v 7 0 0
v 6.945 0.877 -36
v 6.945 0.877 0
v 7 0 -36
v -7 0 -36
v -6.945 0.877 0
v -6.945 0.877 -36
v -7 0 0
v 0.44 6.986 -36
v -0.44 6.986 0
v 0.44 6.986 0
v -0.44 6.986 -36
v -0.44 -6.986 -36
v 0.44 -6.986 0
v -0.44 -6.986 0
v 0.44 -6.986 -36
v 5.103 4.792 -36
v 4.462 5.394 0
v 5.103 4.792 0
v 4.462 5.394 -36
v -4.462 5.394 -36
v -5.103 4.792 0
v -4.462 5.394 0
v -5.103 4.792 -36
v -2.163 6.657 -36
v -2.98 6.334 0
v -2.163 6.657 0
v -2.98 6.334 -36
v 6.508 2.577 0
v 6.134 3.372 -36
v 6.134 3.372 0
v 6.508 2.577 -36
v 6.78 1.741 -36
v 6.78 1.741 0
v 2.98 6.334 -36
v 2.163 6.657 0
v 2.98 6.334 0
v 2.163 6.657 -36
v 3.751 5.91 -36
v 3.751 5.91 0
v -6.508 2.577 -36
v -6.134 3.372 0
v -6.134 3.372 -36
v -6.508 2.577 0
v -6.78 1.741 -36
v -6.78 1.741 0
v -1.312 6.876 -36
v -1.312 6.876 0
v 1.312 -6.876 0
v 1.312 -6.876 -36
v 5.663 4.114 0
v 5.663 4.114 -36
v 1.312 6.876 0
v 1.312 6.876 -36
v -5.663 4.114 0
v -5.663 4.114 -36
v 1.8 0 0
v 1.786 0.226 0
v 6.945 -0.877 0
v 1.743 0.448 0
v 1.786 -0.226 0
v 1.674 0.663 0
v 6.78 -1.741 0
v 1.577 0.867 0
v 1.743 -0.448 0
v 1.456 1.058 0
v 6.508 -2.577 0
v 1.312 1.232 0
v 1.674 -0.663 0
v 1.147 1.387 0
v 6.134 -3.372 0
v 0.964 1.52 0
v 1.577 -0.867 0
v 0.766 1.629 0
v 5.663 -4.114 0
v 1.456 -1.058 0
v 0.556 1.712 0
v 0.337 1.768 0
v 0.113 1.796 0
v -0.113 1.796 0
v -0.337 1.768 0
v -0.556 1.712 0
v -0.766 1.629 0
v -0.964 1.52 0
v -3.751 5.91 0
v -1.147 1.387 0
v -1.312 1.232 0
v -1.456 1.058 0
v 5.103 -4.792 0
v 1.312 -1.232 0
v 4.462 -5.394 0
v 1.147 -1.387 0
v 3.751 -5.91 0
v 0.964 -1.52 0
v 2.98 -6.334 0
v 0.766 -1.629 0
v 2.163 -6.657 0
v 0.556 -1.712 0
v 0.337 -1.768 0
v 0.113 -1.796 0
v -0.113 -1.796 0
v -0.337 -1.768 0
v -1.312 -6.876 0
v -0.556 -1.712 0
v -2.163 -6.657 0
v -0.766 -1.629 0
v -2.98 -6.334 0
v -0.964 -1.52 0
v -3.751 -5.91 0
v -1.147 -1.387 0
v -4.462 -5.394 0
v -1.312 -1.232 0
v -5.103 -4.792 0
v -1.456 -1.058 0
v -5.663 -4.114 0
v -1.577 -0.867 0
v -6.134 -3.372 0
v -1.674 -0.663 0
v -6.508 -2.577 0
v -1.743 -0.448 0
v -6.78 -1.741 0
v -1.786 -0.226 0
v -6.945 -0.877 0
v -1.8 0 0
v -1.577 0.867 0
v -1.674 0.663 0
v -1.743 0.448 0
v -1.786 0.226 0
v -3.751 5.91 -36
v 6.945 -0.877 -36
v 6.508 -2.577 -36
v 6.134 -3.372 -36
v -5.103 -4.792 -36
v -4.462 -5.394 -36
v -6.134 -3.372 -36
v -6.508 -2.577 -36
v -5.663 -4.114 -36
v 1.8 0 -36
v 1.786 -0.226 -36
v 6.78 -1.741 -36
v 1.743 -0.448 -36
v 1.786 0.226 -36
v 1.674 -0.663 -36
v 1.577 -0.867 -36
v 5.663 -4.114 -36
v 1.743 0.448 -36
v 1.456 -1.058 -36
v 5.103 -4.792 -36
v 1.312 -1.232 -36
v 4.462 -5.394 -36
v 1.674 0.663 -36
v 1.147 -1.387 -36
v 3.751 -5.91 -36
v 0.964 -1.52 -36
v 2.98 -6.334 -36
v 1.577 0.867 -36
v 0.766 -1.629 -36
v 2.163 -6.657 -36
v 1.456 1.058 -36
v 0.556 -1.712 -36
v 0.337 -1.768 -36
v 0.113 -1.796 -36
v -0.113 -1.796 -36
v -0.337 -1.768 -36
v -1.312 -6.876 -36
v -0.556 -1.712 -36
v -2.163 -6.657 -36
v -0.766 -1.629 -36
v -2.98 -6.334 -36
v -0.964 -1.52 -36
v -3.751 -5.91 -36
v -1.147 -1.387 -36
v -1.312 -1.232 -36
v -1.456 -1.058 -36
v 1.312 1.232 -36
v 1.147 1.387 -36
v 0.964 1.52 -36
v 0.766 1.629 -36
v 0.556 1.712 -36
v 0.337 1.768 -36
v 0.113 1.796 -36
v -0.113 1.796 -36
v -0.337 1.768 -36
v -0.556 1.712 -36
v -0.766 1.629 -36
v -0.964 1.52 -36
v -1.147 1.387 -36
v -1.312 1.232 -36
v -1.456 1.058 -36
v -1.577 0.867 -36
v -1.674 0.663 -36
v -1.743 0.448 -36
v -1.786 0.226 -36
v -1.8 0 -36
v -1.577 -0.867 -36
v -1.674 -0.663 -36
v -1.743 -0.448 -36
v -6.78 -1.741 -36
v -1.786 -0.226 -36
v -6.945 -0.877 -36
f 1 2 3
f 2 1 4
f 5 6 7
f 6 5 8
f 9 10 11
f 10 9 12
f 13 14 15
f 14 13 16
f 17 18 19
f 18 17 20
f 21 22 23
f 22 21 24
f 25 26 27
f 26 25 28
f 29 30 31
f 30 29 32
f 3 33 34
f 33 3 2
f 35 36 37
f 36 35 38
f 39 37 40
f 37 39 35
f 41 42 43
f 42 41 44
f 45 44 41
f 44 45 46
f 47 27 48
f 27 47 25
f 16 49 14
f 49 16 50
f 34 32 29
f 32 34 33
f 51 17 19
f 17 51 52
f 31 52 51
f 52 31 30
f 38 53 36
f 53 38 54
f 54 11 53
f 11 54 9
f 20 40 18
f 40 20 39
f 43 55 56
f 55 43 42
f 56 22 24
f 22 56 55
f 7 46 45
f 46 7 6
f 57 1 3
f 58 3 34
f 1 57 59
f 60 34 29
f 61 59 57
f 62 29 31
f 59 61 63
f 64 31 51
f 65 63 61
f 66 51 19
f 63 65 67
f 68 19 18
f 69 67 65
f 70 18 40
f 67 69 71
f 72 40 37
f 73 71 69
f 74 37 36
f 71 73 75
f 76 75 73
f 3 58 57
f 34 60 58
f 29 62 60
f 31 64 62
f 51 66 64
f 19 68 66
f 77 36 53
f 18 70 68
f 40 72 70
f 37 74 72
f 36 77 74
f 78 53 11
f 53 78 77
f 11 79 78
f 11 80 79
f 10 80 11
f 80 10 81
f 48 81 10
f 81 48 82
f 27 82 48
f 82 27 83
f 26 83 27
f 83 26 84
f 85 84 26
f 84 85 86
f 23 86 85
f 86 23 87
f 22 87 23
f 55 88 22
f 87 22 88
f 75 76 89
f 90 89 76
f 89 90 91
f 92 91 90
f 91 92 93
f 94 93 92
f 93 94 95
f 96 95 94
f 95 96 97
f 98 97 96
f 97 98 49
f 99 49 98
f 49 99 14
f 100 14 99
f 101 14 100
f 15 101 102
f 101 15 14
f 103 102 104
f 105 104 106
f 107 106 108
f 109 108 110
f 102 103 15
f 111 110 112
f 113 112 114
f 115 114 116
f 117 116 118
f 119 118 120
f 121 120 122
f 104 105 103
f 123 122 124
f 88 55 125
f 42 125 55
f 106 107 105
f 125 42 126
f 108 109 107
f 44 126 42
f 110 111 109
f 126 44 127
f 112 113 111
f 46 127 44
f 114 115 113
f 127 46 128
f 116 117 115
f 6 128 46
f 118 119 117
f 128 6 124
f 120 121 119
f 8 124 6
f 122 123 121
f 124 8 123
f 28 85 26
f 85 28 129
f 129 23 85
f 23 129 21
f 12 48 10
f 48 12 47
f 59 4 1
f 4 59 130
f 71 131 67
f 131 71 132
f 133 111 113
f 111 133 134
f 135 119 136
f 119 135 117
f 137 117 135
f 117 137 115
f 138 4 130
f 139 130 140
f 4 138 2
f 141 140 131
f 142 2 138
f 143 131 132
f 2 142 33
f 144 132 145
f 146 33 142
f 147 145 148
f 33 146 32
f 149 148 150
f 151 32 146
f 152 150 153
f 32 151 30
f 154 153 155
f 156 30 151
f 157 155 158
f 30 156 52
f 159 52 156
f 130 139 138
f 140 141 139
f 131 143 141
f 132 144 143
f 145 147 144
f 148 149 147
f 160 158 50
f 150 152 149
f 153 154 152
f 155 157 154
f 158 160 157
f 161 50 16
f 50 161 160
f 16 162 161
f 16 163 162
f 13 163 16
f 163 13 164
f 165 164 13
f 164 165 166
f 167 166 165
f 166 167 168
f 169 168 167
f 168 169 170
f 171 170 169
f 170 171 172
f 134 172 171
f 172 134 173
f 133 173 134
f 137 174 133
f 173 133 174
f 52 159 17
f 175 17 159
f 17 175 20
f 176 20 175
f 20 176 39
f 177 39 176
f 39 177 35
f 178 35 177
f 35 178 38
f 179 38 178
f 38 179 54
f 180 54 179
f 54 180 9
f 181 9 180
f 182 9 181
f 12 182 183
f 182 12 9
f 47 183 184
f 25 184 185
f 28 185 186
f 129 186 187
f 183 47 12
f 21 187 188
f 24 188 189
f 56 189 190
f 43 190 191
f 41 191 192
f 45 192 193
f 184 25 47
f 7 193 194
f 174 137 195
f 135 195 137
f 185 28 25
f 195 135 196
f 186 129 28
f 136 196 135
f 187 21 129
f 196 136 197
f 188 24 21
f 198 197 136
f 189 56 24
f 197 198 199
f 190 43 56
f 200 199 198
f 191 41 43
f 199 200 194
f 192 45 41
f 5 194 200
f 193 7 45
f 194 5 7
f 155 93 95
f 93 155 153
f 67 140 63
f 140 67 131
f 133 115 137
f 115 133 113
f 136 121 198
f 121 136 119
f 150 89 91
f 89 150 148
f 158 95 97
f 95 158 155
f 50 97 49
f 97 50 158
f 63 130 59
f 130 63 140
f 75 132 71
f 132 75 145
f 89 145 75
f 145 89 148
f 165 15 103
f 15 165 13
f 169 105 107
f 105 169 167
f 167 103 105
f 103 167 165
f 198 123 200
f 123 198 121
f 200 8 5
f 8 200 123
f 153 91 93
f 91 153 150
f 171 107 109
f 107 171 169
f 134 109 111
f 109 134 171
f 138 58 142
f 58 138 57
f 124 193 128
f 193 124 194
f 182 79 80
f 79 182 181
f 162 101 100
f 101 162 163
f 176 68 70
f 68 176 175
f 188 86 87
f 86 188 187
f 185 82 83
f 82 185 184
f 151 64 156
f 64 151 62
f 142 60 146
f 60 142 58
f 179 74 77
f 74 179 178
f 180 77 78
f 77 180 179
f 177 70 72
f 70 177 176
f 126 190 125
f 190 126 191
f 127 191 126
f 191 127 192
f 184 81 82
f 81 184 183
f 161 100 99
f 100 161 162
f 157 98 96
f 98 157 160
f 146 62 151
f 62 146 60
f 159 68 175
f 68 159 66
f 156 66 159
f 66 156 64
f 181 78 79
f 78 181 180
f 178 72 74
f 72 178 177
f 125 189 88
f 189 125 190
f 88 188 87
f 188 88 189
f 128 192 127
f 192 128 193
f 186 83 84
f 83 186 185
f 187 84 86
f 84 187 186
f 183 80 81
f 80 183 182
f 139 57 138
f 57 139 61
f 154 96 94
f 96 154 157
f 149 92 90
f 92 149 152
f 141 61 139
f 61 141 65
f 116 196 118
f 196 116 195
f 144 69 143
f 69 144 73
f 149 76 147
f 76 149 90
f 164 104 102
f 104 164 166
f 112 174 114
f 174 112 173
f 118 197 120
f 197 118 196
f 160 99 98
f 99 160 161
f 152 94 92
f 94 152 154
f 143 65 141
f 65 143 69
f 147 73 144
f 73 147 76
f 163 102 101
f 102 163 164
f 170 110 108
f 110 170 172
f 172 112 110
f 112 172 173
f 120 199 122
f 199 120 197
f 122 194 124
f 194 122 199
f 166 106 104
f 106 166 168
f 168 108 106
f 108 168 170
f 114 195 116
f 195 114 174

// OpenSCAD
$fn = 50;


difference() {
	union() {
		translate(v = [0, 0, -36.0000000000]) {
			cylinder(h = 36, r = 7.0000000000);
		}
	}
	union() {
		#translate(v = [0, 0, -36]) {
			cylinder(h = 36, r = 1.8000000000);
		}
	}
}
